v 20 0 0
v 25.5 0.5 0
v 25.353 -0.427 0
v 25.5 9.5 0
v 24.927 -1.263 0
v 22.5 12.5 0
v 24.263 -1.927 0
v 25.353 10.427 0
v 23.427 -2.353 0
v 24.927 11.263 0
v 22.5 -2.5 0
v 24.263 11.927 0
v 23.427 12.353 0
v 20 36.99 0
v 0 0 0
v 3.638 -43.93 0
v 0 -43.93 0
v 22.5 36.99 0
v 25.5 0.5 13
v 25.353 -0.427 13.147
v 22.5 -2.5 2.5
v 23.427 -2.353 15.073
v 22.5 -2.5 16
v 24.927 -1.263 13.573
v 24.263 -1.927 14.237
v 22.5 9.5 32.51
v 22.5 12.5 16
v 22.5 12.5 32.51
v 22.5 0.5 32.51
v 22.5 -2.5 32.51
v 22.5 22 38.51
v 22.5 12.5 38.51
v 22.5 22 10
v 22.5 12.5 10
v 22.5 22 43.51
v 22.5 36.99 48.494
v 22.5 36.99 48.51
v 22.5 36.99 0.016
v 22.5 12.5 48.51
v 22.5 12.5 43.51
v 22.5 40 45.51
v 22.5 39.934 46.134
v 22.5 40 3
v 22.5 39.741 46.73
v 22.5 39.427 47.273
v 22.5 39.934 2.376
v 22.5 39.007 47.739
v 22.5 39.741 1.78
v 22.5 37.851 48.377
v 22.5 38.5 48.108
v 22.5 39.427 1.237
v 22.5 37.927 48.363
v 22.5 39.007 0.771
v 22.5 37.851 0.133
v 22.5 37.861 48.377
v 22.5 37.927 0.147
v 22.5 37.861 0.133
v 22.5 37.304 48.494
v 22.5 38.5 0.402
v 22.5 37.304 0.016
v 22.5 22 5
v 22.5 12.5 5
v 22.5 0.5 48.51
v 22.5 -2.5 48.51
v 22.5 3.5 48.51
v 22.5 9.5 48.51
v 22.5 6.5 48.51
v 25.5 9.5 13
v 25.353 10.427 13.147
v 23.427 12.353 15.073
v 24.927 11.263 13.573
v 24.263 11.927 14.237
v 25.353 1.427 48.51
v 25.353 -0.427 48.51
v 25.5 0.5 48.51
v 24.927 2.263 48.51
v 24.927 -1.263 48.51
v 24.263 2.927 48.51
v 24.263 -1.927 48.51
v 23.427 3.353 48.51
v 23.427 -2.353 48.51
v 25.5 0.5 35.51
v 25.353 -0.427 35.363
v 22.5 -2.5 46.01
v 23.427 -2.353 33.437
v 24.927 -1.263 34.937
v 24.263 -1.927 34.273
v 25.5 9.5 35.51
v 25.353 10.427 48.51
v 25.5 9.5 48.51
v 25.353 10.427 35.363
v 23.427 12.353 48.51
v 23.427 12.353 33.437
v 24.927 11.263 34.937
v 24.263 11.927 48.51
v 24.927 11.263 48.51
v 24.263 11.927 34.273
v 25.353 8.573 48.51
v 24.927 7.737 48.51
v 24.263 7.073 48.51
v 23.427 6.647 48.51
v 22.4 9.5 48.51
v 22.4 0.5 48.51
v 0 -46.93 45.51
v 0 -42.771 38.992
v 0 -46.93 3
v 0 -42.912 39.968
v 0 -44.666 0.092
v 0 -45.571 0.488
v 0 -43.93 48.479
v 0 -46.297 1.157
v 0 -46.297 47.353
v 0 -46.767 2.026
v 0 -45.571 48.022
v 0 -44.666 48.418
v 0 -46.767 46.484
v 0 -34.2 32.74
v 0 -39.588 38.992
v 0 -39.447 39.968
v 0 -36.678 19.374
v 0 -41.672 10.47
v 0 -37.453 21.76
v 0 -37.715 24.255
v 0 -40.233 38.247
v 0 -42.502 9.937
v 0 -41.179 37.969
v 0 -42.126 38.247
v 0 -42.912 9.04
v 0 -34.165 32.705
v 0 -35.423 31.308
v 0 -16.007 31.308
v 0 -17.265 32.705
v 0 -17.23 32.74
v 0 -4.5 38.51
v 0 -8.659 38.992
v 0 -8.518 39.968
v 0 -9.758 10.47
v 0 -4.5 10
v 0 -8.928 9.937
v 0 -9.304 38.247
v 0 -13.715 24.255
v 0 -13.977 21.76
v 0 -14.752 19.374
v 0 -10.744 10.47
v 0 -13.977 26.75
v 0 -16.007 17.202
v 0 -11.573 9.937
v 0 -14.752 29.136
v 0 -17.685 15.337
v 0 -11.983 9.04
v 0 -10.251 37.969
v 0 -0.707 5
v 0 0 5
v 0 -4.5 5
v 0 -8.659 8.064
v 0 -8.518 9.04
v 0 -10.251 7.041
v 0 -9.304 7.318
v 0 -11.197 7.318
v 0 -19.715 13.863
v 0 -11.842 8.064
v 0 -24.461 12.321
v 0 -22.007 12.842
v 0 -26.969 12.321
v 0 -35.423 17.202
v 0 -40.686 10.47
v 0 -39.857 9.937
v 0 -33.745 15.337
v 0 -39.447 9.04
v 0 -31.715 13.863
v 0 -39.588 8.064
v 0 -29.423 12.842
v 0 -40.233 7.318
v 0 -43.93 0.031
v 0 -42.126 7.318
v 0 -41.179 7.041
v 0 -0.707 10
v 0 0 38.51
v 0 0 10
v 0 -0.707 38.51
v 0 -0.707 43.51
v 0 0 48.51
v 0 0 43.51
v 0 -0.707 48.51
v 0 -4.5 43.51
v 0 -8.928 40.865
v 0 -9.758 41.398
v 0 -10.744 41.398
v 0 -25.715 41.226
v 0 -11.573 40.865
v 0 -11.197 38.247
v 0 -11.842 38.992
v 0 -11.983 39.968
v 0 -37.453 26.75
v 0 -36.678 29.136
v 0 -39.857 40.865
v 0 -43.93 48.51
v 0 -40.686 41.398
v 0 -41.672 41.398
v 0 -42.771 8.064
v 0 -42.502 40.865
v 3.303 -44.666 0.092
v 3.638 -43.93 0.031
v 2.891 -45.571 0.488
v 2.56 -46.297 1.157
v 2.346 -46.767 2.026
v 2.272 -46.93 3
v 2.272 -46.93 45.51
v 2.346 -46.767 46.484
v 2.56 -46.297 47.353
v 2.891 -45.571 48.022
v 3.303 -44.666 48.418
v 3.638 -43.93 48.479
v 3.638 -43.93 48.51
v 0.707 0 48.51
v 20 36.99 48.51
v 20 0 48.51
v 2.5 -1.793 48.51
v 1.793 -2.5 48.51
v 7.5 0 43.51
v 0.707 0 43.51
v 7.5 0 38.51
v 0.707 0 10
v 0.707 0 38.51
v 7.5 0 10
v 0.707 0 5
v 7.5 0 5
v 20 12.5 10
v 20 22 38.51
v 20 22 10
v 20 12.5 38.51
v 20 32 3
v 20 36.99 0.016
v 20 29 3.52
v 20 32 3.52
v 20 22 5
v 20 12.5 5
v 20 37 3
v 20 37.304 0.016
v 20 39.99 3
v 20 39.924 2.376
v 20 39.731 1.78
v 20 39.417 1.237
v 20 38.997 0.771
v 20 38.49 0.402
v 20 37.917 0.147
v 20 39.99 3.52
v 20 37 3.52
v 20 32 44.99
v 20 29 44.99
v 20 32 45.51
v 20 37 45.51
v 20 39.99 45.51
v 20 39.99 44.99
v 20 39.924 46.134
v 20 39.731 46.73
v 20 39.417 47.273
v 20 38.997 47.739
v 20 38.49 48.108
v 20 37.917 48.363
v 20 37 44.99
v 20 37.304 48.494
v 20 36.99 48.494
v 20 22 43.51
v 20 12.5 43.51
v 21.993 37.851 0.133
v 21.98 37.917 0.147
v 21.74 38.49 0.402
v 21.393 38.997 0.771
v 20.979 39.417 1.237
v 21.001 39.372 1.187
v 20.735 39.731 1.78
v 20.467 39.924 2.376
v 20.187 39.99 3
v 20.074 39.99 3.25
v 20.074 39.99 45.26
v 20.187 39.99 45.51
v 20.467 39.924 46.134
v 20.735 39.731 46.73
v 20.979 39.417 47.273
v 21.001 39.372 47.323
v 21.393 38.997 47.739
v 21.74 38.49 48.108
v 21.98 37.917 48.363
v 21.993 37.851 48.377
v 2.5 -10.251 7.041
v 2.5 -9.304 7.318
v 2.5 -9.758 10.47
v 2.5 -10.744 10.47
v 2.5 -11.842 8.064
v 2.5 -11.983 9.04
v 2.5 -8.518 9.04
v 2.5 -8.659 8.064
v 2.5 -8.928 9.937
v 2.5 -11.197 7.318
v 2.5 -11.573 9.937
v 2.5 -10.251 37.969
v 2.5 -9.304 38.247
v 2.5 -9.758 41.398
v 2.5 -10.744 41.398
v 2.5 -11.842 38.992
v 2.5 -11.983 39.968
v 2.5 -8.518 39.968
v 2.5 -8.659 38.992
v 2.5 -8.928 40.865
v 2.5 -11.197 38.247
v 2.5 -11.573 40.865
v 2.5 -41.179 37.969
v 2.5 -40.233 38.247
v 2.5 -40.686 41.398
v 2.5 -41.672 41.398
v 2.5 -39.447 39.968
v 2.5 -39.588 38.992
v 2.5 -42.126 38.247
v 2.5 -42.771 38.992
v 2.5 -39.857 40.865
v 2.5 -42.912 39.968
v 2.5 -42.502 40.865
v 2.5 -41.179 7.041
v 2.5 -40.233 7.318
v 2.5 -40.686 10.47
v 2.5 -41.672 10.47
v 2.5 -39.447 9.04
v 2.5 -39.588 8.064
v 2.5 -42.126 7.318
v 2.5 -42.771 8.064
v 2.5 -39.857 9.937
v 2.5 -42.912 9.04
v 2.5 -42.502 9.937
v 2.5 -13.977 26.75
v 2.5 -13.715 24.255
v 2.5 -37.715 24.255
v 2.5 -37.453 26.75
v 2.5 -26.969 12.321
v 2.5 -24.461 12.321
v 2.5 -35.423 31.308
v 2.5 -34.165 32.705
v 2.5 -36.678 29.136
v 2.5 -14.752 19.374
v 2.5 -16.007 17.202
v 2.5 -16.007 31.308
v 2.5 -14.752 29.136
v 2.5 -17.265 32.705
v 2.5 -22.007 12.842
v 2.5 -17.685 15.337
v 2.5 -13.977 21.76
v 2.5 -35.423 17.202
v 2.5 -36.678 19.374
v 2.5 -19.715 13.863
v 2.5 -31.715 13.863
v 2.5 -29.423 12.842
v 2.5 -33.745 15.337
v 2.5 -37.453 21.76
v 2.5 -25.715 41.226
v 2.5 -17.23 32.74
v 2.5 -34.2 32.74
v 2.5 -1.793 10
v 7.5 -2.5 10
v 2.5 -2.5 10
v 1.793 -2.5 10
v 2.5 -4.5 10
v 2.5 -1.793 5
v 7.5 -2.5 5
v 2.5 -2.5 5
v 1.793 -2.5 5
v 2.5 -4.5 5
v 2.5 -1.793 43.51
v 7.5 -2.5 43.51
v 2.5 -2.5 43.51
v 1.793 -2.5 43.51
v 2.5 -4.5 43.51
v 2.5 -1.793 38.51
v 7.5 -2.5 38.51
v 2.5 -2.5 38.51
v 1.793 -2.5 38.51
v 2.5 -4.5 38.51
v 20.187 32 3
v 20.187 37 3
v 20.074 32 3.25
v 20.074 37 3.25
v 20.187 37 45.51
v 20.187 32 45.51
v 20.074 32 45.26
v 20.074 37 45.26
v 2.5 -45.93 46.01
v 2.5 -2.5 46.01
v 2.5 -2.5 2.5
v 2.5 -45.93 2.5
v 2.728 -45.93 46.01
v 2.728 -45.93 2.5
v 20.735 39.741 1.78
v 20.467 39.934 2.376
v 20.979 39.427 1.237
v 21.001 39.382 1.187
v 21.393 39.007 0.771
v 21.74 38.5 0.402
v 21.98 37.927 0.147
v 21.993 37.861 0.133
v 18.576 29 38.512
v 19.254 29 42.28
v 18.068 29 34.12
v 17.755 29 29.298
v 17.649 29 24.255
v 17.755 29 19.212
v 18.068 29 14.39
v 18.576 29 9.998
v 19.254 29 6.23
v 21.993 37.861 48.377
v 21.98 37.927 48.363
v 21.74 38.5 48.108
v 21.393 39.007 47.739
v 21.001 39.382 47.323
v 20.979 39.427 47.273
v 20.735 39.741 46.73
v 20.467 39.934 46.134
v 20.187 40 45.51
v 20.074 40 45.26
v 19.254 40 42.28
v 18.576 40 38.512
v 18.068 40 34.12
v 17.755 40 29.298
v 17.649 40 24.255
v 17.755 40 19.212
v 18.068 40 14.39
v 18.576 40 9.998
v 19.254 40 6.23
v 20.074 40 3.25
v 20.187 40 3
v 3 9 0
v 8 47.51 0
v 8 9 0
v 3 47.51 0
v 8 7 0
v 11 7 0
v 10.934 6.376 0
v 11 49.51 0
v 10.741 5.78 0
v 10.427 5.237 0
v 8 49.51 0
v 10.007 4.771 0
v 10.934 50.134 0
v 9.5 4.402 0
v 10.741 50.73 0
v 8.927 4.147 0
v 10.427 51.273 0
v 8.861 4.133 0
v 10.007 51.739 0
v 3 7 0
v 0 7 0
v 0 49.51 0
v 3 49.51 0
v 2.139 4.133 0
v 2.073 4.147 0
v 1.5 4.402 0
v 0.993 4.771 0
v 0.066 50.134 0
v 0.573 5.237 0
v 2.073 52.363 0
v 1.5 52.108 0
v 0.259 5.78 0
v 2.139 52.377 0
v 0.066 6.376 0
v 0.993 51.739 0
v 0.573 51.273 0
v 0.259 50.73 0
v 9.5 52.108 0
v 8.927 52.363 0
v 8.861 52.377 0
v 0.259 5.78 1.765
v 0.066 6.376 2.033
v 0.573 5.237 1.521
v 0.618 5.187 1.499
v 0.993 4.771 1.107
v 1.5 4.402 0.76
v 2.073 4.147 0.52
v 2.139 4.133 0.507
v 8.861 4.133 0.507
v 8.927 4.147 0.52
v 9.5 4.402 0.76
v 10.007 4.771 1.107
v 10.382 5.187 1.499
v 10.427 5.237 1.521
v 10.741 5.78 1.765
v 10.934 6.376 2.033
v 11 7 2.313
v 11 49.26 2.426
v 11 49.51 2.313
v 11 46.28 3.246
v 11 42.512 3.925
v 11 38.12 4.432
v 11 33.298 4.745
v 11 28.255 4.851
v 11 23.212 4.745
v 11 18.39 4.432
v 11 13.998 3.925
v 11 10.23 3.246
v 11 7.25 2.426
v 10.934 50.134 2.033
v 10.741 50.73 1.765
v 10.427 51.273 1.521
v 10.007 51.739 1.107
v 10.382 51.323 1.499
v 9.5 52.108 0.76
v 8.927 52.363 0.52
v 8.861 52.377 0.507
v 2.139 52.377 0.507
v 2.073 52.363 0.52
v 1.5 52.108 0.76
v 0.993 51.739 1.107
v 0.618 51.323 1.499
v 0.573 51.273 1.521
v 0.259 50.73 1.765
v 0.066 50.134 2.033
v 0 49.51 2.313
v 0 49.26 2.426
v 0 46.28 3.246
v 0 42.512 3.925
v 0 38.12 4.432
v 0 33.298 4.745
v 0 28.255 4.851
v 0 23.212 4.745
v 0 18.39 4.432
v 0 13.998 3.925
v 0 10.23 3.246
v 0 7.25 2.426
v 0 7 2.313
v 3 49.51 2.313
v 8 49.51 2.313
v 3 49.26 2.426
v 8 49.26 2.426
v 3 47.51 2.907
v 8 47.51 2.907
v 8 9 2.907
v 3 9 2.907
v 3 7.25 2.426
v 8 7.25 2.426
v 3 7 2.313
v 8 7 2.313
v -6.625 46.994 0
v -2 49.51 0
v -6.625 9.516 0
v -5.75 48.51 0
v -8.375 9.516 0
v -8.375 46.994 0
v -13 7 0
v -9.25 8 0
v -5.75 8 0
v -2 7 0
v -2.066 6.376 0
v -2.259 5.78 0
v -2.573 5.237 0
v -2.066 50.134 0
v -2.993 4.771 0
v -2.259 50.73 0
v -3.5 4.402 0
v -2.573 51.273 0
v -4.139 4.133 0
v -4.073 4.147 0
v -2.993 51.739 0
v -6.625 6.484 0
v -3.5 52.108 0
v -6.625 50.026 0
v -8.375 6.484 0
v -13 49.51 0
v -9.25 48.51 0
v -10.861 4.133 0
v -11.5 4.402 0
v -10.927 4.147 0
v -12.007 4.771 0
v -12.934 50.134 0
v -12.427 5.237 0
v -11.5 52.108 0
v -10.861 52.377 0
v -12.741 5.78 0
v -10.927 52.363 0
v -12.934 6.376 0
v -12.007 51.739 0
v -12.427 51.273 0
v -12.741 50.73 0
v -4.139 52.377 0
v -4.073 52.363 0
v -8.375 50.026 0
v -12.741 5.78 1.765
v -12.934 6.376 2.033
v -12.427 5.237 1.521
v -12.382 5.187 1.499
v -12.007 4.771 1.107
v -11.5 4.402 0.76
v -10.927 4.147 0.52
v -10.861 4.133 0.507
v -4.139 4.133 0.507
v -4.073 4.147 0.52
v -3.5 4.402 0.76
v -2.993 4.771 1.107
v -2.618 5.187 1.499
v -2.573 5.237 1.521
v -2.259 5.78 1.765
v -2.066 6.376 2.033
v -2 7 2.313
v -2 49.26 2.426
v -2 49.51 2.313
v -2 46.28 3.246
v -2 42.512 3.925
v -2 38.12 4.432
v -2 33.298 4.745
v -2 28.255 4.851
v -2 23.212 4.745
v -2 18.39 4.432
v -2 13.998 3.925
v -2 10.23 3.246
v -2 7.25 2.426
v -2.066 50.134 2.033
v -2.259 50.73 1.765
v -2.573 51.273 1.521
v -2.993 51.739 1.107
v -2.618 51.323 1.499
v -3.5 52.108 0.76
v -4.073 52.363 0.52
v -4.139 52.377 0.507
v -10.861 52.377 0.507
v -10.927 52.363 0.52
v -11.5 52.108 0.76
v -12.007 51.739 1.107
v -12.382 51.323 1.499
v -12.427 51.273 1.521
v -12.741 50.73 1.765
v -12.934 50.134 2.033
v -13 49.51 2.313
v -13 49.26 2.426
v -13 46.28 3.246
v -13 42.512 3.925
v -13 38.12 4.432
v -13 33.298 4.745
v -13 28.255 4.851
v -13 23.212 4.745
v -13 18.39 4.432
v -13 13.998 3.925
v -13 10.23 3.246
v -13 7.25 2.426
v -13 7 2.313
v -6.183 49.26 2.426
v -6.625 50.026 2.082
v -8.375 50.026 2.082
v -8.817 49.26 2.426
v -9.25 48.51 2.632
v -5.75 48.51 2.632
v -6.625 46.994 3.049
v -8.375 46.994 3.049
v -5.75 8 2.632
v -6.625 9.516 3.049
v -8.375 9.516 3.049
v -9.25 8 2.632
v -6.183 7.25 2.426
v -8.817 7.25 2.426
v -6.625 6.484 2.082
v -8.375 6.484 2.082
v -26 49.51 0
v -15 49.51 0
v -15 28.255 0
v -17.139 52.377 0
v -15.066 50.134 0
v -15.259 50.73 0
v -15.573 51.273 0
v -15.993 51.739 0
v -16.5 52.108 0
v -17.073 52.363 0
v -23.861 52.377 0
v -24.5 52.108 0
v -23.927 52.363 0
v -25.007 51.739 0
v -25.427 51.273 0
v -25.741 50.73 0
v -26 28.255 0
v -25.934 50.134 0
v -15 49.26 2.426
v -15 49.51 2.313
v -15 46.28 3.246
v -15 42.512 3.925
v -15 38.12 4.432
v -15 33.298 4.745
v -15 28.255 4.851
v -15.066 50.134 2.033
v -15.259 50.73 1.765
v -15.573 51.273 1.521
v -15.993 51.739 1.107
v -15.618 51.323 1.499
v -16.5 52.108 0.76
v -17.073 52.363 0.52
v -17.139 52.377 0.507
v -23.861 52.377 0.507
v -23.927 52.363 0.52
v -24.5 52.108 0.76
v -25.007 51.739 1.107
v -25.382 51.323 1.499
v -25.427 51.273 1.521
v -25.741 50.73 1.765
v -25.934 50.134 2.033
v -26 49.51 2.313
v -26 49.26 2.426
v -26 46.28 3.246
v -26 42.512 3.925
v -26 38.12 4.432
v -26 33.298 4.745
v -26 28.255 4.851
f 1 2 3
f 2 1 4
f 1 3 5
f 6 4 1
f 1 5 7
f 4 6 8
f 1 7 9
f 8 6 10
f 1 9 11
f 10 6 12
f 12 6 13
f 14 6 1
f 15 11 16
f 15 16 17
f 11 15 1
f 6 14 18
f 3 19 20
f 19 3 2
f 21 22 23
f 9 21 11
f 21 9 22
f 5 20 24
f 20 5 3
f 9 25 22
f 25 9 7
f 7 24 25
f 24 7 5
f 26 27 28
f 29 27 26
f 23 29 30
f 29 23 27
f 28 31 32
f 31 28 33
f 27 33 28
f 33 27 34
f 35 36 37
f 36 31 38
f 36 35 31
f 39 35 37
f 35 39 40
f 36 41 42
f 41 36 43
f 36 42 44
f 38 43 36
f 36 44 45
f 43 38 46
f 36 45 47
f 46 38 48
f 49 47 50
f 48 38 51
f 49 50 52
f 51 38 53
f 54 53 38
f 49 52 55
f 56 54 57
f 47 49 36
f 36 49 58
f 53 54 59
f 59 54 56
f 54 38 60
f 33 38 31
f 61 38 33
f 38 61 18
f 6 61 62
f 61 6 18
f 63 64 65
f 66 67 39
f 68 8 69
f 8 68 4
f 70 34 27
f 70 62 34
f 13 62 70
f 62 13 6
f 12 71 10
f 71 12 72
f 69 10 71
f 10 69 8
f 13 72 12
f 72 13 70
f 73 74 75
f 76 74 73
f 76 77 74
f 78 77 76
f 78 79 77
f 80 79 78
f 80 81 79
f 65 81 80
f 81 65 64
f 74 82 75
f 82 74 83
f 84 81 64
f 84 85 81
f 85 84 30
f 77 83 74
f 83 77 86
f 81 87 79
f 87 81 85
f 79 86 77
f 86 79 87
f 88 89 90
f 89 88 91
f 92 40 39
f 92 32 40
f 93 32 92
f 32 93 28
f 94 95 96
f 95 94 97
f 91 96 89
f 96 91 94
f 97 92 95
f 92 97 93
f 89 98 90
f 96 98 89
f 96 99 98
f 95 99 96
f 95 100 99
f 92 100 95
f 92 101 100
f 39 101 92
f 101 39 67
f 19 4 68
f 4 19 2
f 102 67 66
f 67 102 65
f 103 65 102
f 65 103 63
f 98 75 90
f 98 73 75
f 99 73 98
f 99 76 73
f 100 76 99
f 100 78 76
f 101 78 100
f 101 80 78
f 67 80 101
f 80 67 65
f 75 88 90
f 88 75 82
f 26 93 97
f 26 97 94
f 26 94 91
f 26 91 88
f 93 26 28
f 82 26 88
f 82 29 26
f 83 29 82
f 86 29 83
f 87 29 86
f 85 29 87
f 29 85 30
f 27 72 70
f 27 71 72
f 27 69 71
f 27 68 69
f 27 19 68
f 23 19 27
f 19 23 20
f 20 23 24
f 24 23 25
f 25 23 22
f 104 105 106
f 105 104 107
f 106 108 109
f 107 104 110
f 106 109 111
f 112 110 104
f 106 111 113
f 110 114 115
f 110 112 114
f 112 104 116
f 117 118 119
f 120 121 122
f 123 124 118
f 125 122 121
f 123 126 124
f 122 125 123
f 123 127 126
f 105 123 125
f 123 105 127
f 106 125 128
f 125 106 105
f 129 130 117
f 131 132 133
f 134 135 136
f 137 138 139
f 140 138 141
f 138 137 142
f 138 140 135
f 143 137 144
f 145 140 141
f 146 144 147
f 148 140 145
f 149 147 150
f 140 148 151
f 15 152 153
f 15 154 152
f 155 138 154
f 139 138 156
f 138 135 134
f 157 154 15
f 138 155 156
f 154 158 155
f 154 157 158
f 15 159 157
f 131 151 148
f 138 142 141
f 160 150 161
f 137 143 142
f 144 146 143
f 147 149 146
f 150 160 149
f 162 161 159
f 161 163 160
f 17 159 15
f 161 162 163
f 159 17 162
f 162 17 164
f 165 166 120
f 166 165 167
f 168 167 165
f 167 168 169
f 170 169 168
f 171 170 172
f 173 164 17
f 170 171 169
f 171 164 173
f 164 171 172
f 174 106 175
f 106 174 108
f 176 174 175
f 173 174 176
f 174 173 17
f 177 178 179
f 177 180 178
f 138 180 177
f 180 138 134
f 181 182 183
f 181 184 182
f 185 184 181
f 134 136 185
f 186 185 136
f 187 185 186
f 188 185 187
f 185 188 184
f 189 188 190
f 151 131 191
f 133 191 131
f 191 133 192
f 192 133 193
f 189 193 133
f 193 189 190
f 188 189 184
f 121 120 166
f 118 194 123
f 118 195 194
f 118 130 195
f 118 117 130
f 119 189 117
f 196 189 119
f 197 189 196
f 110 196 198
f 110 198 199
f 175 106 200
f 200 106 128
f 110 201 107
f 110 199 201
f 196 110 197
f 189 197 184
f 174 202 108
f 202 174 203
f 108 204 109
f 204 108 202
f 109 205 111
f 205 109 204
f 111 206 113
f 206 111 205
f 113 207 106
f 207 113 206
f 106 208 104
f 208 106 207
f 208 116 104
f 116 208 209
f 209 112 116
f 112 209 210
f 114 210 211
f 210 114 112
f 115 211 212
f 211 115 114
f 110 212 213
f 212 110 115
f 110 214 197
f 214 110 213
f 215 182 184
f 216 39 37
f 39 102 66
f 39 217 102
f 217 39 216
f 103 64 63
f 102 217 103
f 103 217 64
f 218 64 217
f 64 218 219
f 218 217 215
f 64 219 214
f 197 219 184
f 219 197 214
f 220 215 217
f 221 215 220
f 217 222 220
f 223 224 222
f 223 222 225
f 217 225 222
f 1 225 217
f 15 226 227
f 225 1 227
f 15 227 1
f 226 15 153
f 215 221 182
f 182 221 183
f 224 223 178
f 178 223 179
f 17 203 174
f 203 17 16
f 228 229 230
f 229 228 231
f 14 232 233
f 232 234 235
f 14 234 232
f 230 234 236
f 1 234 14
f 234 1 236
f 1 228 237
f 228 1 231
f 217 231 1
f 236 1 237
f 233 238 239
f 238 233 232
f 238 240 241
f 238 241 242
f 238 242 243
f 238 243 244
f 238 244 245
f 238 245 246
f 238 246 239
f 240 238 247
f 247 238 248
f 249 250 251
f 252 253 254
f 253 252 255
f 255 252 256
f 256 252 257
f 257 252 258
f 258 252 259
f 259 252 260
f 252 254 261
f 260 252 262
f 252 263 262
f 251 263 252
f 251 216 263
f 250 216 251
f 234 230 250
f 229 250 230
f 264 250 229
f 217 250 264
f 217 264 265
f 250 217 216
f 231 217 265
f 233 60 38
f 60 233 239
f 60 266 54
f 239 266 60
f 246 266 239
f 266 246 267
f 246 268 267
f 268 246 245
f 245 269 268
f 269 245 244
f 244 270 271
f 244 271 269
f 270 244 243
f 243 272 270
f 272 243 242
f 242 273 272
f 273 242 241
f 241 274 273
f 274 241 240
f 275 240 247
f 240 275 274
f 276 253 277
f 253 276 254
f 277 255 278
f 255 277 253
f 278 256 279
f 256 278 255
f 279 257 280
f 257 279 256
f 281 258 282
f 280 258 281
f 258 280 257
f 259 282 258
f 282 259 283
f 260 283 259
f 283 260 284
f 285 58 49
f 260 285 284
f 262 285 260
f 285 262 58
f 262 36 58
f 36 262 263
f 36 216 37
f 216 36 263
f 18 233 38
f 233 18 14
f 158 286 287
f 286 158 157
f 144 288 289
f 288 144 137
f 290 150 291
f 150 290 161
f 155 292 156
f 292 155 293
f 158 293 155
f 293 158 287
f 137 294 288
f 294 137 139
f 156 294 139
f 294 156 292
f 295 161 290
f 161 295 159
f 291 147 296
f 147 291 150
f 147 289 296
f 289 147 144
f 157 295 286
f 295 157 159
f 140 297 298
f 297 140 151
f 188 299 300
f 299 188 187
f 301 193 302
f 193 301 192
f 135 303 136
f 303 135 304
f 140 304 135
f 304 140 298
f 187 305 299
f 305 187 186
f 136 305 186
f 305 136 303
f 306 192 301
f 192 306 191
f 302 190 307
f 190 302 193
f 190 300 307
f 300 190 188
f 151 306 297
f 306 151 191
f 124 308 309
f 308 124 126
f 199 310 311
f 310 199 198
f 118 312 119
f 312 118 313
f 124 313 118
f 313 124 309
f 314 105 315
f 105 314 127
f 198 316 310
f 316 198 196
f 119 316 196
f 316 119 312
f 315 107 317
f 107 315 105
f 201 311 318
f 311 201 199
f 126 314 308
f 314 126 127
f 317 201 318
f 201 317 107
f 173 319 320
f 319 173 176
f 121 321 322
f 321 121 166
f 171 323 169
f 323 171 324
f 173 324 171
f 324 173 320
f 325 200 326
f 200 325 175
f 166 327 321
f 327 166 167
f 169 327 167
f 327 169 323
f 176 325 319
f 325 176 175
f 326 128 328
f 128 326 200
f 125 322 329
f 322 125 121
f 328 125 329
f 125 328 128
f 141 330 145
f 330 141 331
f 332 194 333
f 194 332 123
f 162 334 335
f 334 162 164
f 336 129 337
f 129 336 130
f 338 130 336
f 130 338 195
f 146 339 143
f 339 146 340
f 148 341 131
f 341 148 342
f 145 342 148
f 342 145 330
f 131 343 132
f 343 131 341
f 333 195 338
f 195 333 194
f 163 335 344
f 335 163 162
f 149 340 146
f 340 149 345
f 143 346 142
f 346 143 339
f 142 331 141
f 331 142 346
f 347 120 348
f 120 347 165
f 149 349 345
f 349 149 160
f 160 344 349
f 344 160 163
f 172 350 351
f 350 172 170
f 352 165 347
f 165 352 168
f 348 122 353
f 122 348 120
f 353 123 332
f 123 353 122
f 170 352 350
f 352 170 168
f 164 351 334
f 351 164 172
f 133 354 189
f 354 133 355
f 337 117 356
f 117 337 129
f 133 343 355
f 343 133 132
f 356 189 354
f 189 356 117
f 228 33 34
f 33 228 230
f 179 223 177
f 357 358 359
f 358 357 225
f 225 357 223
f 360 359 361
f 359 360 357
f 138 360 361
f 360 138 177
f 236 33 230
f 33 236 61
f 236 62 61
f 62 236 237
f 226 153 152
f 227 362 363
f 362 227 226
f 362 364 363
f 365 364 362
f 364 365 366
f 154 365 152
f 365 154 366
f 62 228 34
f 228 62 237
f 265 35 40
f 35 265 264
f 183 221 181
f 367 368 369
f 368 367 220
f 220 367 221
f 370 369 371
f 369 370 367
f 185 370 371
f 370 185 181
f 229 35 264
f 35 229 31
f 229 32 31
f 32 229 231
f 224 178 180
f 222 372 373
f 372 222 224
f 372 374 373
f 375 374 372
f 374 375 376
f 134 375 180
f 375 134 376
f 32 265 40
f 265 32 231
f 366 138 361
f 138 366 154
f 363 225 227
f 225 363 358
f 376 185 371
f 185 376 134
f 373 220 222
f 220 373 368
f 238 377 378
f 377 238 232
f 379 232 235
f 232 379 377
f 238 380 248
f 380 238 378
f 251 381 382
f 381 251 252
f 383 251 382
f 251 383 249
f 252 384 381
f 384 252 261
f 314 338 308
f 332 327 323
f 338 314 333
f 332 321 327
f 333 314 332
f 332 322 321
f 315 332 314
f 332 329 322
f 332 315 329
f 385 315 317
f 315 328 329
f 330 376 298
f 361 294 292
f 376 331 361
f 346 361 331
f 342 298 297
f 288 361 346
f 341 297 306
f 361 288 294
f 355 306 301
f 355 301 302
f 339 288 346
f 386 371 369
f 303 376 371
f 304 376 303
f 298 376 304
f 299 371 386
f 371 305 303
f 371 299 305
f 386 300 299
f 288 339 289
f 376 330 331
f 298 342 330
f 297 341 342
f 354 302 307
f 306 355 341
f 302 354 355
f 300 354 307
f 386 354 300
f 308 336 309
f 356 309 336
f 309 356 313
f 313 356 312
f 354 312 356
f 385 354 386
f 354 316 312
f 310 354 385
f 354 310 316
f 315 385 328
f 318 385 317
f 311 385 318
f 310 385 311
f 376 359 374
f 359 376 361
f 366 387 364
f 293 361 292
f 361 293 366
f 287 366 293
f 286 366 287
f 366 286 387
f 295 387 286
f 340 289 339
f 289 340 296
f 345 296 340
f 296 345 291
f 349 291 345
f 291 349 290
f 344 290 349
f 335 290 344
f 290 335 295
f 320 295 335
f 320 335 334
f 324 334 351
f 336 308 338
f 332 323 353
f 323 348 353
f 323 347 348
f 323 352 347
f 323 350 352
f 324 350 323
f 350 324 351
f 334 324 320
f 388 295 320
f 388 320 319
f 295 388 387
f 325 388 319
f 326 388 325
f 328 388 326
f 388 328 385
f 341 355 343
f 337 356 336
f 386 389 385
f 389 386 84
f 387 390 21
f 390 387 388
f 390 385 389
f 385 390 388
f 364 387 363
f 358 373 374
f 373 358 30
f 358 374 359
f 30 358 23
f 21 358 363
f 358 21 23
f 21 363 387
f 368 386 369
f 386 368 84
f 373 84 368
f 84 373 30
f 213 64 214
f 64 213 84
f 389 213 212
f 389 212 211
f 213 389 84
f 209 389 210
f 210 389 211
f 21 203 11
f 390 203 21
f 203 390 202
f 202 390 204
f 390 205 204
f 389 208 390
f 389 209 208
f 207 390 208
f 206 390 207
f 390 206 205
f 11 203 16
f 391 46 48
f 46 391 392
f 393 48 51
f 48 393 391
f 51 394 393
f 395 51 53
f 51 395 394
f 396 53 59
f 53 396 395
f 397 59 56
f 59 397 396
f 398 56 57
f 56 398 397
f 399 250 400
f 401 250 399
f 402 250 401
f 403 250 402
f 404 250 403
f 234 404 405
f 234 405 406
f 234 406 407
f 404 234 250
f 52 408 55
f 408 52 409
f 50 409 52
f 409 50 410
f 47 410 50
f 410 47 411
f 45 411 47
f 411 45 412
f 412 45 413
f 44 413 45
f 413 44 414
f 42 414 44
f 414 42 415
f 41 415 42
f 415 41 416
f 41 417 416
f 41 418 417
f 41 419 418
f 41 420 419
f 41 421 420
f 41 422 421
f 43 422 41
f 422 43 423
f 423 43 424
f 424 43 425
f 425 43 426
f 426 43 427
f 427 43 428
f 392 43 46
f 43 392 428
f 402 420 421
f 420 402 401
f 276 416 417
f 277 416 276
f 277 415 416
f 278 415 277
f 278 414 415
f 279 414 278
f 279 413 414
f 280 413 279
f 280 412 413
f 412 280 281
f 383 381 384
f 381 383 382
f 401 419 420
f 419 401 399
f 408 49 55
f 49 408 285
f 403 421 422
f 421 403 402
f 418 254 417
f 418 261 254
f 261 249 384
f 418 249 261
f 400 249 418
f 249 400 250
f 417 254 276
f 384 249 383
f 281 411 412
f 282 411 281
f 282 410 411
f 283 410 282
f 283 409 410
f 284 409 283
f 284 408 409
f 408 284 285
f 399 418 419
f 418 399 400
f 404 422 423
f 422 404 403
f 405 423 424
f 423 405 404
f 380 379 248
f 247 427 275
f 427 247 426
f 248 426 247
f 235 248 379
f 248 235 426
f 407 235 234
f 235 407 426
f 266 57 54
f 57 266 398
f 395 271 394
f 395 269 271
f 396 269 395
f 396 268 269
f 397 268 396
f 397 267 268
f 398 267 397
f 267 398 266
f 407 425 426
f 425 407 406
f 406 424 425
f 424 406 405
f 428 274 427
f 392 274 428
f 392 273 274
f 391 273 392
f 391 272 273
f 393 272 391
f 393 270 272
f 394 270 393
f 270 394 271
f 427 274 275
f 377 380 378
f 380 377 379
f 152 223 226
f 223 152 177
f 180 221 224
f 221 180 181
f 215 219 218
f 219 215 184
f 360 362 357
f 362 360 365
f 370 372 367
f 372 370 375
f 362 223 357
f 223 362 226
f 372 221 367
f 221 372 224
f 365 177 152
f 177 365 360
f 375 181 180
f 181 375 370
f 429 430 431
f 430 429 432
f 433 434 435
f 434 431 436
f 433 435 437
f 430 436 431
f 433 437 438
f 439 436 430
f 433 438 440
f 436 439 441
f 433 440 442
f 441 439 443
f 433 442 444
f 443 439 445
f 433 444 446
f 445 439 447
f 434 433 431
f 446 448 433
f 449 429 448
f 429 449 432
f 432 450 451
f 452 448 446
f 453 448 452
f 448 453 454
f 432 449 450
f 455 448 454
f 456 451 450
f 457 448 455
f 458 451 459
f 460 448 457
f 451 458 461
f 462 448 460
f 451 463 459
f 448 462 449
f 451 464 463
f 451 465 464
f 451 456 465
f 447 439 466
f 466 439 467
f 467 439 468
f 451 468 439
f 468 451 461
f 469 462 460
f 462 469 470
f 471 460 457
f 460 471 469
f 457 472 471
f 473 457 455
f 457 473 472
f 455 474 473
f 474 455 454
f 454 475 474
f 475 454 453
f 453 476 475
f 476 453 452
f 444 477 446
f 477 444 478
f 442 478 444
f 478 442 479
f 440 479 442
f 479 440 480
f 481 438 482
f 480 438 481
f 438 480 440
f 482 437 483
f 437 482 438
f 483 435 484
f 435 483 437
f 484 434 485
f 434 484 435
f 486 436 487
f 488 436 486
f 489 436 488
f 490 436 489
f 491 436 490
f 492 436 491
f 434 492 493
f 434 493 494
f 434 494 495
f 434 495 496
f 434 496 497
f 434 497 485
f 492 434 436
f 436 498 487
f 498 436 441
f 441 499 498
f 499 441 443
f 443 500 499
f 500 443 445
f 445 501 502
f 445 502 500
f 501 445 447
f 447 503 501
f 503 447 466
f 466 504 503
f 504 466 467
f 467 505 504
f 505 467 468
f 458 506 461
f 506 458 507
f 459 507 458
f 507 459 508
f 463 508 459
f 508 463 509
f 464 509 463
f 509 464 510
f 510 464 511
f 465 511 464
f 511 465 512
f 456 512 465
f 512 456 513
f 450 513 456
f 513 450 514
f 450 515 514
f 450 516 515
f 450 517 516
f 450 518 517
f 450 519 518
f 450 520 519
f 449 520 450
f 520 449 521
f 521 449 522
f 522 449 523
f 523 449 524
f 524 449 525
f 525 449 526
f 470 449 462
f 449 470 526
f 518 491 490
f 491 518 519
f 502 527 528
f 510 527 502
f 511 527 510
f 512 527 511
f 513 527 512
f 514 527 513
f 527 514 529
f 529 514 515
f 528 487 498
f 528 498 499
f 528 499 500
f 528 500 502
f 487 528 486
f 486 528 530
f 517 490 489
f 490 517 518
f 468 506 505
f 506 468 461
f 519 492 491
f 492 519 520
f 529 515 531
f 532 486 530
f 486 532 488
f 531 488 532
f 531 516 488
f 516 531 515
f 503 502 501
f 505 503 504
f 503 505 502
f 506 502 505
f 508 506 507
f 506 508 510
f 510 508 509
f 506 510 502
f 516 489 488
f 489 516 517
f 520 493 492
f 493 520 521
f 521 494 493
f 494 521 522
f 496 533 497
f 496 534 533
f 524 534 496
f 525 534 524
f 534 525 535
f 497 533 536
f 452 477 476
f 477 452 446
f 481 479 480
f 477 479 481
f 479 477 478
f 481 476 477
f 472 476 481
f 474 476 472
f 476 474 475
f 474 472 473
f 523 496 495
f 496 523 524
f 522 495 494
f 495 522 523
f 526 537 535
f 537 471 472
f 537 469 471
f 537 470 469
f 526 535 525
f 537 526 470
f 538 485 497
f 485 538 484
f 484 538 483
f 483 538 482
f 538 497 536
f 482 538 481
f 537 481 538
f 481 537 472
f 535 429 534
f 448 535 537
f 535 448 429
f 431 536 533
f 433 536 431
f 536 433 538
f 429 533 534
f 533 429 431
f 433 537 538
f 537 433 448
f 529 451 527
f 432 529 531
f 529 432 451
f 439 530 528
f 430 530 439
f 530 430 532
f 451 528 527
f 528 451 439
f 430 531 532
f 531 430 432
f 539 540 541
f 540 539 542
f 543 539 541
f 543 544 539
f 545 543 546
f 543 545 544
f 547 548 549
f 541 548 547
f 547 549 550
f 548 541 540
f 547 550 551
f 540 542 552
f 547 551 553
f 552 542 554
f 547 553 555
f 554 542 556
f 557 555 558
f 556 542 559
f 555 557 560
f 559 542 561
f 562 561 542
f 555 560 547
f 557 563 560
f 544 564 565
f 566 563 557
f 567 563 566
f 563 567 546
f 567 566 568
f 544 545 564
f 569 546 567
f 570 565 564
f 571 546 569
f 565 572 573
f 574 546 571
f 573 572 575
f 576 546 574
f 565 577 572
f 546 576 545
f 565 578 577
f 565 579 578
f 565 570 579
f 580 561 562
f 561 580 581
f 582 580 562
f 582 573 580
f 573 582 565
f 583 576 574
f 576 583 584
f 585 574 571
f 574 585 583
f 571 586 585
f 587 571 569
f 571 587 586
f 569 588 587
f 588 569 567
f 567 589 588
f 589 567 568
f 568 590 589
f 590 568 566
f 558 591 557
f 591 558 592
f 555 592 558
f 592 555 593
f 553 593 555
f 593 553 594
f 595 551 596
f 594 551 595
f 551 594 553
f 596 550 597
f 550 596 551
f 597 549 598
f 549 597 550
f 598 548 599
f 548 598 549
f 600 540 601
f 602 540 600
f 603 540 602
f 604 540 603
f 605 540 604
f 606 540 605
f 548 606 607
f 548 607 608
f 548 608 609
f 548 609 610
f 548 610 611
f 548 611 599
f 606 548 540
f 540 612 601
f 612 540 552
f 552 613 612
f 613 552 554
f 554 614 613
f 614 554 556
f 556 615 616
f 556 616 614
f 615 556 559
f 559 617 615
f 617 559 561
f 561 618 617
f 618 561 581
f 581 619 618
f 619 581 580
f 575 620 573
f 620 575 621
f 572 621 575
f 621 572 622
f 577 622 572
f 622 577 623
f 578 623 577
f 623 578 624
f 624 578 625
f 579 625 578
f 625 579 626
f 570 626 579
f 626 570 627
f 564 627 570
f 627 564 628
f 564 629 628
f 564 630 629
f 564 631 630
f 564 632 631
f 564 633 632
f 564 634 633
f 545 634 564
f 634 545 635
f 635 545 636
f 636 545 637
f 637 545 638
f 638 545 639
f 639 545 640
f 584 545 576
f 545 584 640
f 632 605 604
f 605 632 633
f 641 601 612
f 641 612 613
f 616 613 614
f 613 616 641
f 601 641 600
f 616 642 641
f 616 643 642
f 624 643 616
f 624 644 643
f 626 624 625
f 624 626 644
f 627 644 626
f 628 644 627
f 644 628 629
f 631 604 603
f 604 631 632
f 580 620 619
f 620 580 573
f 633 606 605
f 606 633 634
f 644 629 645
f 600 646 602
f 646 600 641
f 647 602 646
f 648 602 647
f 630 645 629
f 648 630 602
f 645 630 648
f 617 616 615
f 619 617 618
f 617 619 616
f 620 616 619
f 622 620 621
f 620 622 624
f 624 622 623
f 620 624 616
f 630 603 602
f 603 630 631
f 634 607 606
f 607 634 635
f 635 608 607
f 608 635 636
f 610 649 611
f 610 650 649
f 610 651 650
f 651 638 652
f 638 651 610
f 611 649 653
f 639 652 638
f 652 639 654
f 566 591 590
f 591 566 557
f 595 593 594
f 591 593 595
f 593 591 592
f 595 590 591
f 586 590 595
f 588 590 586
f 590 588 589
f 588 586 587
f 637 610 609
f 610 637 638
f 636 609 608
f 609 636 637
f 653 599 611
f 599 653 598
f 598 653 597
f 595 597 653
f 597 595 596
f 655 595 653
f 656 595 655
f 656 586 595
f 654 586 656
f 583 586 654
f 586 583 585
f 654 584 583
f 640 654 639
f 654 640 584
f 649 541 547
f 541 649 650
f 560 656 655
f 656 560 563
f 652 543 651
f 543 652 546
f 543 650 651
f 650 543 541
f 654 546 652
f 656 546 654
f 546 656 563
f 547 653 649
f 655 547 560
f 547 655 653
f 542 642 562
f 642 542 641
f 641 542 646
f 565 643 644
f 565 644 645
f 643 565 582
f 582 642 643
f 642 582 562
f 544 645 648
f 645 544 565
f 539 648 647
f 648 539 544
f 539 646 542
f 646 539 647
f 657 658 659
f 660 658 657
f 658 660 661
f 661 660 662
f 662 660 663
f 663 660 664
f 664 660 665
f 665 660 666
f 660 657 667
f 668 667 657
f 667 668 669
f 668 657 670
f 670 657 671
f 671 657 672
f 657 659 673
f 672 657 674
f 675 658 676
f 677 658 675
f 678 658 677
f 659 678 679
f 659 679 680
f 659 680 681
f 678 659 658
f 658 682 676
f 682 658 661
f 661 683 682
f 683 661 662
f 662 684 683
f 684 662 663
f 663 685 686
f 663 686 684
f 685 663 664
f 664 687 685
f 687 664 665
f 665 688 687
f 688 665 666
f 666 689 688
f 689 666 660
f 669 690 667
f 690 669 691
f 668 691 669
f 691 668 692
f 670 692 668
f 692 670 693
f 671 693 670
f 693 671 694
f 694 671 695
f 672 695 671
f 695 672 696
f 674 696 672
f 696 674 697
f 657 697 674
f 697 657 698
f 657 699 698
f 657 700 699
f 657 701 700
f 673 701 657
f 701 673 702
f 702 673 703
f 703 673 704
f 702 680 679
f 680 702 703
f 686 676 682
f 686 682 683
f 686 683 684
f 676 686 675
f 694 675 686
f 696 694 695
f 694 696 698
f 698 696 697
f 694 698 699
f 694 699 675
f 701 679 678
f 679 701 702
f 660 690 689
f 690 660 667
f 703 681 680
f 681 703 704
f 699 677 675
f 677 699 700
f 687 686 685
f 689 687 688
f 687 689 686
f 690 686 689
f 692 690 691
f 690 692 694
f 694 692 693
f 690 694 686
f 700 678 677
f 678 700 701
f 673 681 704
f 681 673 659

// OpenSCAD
// file: lib/parameters.scad
// Parameters shared between modules
Base_th = 2;
Beam_width = 15;
Wiggle = 0.25;
Fat_beam_width = Beam_width + Wiggle;
Beam_length = 400;
Wall_th = 2.5;
Min_beam_width = 12.5;
Max_beam_width = 17.5;
Zip_th = 2;
Zip_h = Zip_th + Max_beam_width - Min_beam_width;
Zip_w = 5.0;
Nema17_cube_width          = 42.43;
Nema17_screw_hole_width    = 43.74; // Opposite corner screws
Nema17_ring_diameter       = 22;
Nema17_cube_height         = 39.36;
Nema17_shaft_height        = 63.65;
Nema17_ring_height         = 2;
Nema17_shaft_radius        = 5/2;
b608_outer_dia = 22.2;
b608_width = 7.05;
b608_bore_r = 4;
Gap_between_sandwich_and_plate = 1.5 + Base_th; // 1.5 mm for wiggle
Motor_bracket_flerp_r = 6;
Motor_bracket_flerp = 14;
Motor_bracket_cw = Nema17_cube_width + 6;
Motor_bracket_att_ang = 50;
Mounting_screw_d = 3.5;
Mounting_screw_head_d = 14;
Spool_outer_wall_th = 4;

// Corner clamp parameters
Cc_l1 = (Fat_beam_width+2*Wall_th)*2*sqrt(3);
Cc_rad_b = 4;
Cc_action_point_from_mid = Cc_l1/sqrt(3)-2*Cc_rad_b-7;  // 5 chosen arbitrarily
Cc_plastic_length = sqrt(Cc_action_point_from_mid*Cc_action_point_from_mid
                       - (Cc_action_point_from_mid/2)*(Cc_action_point_from_mid/2));

// The distance between the two action points on the mover
Sidelength = Beam_length + 2*Cc_plastic_length;

/////// Gear parameters ////////////
Circular_pitch = 262;
Motor_teeth = 10;
Gear_height = 21.4-3;
Motor_pitch                      = (Motor_teeth*Circular_pitch/360);
Motor_pitch_diametrial           = Motor_teeth/(2*Motor_pitch);
Motor_outer_radius               = Motor_pitch + 1/Motor_pitch_diametrial;
Spool_teeth = 100;
Spool_r = 75;
Spool_height = 8;
Spool_pitch                      = (Spool_teeth*Circular_pitch/360);
Spool_pitch_diametrial           = Spool_teeth/(2*Spool_pitch);
Spool_outer_radius               = Spool_pitch + 1/Spool_pitch_diametrial;
Sep_disc_radius = 161.83/2; // Made to match 255 teeth gt2 pulley
Motor_bracket_depth = Gear_height+1+7+Nema17_ring_height+1+Gap_between_sandwich_and_plate;
Spool_core_flerp0 = 16+3;

/////// Lineroller parameters ////////////
b623_width  = 4;
b623_bore_r = 3/2;
b623_vgroove_big_r = 12/2;
b623_vgroove_small_r = 10/2;
b623_outer_dia = 10;

Depth_of_roller_base = 18;
Roller_flerp = 6;
Roller_l = 42;
Roller_fl = (Roller_l - Depth_of_roller_base)/2;

Line_roller_wall_th = 5;

Line_roller_ABC_winch_h =  Gap_between_sandwich_and_plate
                           + Sep_disc_radius
                           - Spool_r
                           + Depth_of_roller_base/2
                           + b623_vgroove_small_r;


Ptfe_r = 2.1;
Roller_base_r = 8;
Screw_h = 2;
Screw_head_h = 2;
M3_screw_head_d = 5.8;
Spool_center_bearing_wall_th = 5;
Corner_clamp_bearings_center_to_center = 15;
Anchor_bearings_center_to_center = Corner_clamp_bearings_center_to_center + b623_outer_dia;

//// Lineroller anchor parameters /////

Back_bearing_x = b623_vgroove_big_r + 1.5;
Front_bearing_x = -b623_vgroove_big_r - 5;
Move_tower = -12.2;
Lower_bearing_z = 13;
Higher_bearing_z = Lower_bearing_z + Corner_clamp_bearings_center_to_center;

//// Cable Clamp parameters /////
Bit_width = 12;
Cable_r=2.5;


//// Donkey and encoder parameters /////

Donkey_shaft_d = 6;
Donkey_h = 65.12;
Donkey_body_d = 50;
Donkey_feet_th = 3.5;

Encoder_LDP3806_shaft_d = 6;
Encoder_LDP3806_d = 38;

// Belt drive parameters
GT2_belt_width = 6.5;
GT2_gear_height = GT2_belt_width + 2;
GT2_motor_gear_height = 16;
GT2_motor_gear_outer_dia = 16;
GT2_spool_gear_teeth = 255;
GT2_motor_gear_teeth = 20;
Torx_depth = GT2_gear_height/2;
Belt_roller_h = 56;
Belt_thickness = 1.4;

Belt_roller_space_between_walls = 2*b623_width + 0.8;
Belt_roller_wall_th = (Depth_of_roller_base - Belt_roller_space_between_walls)/2+2;
Belt_roller_top_adj_screw_x = Depth_of_roller_base/2-3.7;
Belt_roller_top_adj_screw_y = Belt_roller_space_between_walls/2+2;
Belt_roller_containing_cube_ywidth = Belt_roller_space_between_walls+8.5;
Belt_roller_insert_h = 18;



// Spacer parameters
Sandwich_ABC_width = 2*(1+Spool_height) + GT2_gear_height;
Sandwich_D_width = 3*(1+Spool_height) + GT2_gear_height;

Spacer_ABC_width = Sandwich_ABC_width - 2*b608_width;
Spacer_D_width = Sandwich_D_width -2*b608_width;


spd = Spool_height+GT2_gear_height;
// Horizontal_deflector_cube_y_size must be exact this number
// because we want to deflect AB-lines
// 60 degrees on the ceiling unit, and we want to put two
// deflectors in a row and get a distance between bearings
// that maintain the distance d when deflecting 60 degrees
Horizontal_deflector_cube_y_size = (2/sqrt(3))*spd;


// Top plate parameters needed for layout slicer
Yshift_top_plate = -297.8;
// main file
include <lib/parameters.scad>
use <lib/util.scad>

wall_th = Wall_th;
cw = Nema17_cube_width; // For brevity
wiggle = 0.54;
r_little = 3;
block_height = Beam_width+2*wall_th;
z_depth = cw + 2*wiggle + 2*wall_th;
cable_clamp_o = 4;
x_depth = 20; // Max width for beam to fit in
cable_clamp_ex_l = 20;
flange_l = x_depth+cable_clamp_ex_l;


extruder_holder();
module extruder_holder(){
  //main_block();
  module main_block(){
    translate([x_depth+wall_th,0,0])
      rotate([90,0,-90])
      linear_extrude(height=x_depth+wall_th, slices=1)
      rounded_2corner([cw+wall_th+Zip_th,  z_depth],
          r_little);
    translate([x_depth,-0.01,0])
      rotate([90,0,90])
      linear_extrude(height=wall_th, slices=1)
      rounded_2corner([flange_l,
          z_depth],
          r_little, $fn=30);
    // A stronger back where it risks to bend
    extra_back_th=3;
    extra_back_h=13+3;
    difference(){
      for(zh = [0, z_depth-extra_back_h]){
        translate([0,-(wall_th-extra_back_th), zh])
        for(k=[0,1])
          translate([x_depth+wall_th,k*(Min_beam_width-2*extra_back_th+wall_th),0])
            difference(){
              cylinder(r=extra_back_th, h=extra_back_h, $fn=20);
              translate([-2*extra_back_th,-2*extra_back_th,-1])
                cube([2*extra_back_th,12,z_depth+2]);
            }
         translate([x_depth+wall_th-0.1,-(wall_th-extra_back_th), zh])
           cube([extra_back_th+0.1,Min_beam_width-2*extra_back_th+wall_th, extra_back_h]);
      }
      translate([x_depth+wall_th-(z_depth/2-extra_back_h), -extra_back_th-0.1, z_depth/2])
        rotate([0,45,0])
        cube(z_depth - 2*extra_back_h);
    }
  }
  ex_l = sqrt((cw+wall_th+Zip_th)*(cw+wall_th+Zip_th) + x_depth*x_depth) + wall_th;

  difference(){
    main_block();
    translate([wall_th,-cw-1-wall_th,wall_th])
      cube([cw,cw+1,cw+2*wiggle]);
    translate([x_depth+wall_th,-wall_th,0])
      rotate([0,0,-atan(x_depth/(cw+Zip_th-0.5))])
      translate([0,-ex_l+0,-1])
      cube([cw,ex_l,cw+2*(wiggle+wall_th+1)]);
    translate([0,-wall_th-Zip_th,wall_th+wiggle])
      rotate([0,90,0])
      translate([-cw/2, -cw/2, -1]){
        Nema17_screw_holes(3.5, wall_th+2, $fs=1);
        rotate([0,0,90])
          teardrop(r=(Nema17_ring_diameter+2)/2, h=wall_th+2);
      }
    // Holes for zip_ties
    for(k=[0,1])
      translate([k*x_depth,-k*(wall_th+Zip_th),0])
      rotate([0,0,k*90])
      for(i=[5,z_depth-5-Zip_w])
        translate([0,Min_beam_width,i])
          cube([x_depth+10, Zip_h+2.5+k*10, Zip_w]);
    // For cable holder screws
    for(i=[cable_clamp_o,z_depth-cable_clamp_o])
      translate([0,flange_l-Zip_w-3,i-Zip_th/2])
        cube([x_depth+10, Zip_w, Zip_th]);
  }

  // Pillar to support cornered ziptie openings
  rotate([0,0,-45])
    translate([0.5,-0.5,0])
    cube([sqrt(2)*wall_th-1,1,z_depth]);

  // Rounded support for cable clamp ziptie
  Placed_cable_clamper();
}

x_l = 6+Zip_w;
// Use this part to screw tight
//Flat_cable_clamper();
module Flat_cable_clamper(){
  difference(){
    intersection(){
      rounded_cube2([x_l,
          z_depth,20], r_little, $fn=30);
      scale([1,1,0.20])
        translate([0,z_depth/2,0])
        rotate([0,90,0])
        translate([0,0,-1])
        cylinder(d=z_depth, h=x_l+2);
    }
  }
}

// Use this part to screw tight
translate([0,4,0])
Flat_cable_clamper_zipties();
module Flat_cable_clamper_zipties(){
  difference(){
    Flat_cable_clamper();
    for(i=[cable_clamp_o-Zip_th/2,z_depth-cable_clamp_o-Zip_th/2])
      translate([x_l-Zip_w-3,i,-1])
        cube([Zip_w, Zip_th, x_depth+10]);
  }
}

translate([-13,4,0])
Flat_cable_clamper_screws();
module Flat_cable_clamper_screws(){
  difference(){
    Flat_cable_clamper();
    for(i=[cable_clamp_o,z_depth-cable_clamp_o])
      translate([x_l/2,i,-1])
        cylinder(d=Mounting_screw_d, h=5);
  }
}

translate([-13*2,4,0])
One_half_cable_clamper();
module One_half_cable_clamper(){
  difference(){
    Flat_cable_clamper();
    translate([-1,-1-z_depth/2,-1])
      cube(z_depth/1+1);
  }
}

module Placed_cable_clamper(){
  translate([x_depth+wall_th,flange_l,0])
    rotate([90,0,-90])
    Flat_cable_clamper();
}
